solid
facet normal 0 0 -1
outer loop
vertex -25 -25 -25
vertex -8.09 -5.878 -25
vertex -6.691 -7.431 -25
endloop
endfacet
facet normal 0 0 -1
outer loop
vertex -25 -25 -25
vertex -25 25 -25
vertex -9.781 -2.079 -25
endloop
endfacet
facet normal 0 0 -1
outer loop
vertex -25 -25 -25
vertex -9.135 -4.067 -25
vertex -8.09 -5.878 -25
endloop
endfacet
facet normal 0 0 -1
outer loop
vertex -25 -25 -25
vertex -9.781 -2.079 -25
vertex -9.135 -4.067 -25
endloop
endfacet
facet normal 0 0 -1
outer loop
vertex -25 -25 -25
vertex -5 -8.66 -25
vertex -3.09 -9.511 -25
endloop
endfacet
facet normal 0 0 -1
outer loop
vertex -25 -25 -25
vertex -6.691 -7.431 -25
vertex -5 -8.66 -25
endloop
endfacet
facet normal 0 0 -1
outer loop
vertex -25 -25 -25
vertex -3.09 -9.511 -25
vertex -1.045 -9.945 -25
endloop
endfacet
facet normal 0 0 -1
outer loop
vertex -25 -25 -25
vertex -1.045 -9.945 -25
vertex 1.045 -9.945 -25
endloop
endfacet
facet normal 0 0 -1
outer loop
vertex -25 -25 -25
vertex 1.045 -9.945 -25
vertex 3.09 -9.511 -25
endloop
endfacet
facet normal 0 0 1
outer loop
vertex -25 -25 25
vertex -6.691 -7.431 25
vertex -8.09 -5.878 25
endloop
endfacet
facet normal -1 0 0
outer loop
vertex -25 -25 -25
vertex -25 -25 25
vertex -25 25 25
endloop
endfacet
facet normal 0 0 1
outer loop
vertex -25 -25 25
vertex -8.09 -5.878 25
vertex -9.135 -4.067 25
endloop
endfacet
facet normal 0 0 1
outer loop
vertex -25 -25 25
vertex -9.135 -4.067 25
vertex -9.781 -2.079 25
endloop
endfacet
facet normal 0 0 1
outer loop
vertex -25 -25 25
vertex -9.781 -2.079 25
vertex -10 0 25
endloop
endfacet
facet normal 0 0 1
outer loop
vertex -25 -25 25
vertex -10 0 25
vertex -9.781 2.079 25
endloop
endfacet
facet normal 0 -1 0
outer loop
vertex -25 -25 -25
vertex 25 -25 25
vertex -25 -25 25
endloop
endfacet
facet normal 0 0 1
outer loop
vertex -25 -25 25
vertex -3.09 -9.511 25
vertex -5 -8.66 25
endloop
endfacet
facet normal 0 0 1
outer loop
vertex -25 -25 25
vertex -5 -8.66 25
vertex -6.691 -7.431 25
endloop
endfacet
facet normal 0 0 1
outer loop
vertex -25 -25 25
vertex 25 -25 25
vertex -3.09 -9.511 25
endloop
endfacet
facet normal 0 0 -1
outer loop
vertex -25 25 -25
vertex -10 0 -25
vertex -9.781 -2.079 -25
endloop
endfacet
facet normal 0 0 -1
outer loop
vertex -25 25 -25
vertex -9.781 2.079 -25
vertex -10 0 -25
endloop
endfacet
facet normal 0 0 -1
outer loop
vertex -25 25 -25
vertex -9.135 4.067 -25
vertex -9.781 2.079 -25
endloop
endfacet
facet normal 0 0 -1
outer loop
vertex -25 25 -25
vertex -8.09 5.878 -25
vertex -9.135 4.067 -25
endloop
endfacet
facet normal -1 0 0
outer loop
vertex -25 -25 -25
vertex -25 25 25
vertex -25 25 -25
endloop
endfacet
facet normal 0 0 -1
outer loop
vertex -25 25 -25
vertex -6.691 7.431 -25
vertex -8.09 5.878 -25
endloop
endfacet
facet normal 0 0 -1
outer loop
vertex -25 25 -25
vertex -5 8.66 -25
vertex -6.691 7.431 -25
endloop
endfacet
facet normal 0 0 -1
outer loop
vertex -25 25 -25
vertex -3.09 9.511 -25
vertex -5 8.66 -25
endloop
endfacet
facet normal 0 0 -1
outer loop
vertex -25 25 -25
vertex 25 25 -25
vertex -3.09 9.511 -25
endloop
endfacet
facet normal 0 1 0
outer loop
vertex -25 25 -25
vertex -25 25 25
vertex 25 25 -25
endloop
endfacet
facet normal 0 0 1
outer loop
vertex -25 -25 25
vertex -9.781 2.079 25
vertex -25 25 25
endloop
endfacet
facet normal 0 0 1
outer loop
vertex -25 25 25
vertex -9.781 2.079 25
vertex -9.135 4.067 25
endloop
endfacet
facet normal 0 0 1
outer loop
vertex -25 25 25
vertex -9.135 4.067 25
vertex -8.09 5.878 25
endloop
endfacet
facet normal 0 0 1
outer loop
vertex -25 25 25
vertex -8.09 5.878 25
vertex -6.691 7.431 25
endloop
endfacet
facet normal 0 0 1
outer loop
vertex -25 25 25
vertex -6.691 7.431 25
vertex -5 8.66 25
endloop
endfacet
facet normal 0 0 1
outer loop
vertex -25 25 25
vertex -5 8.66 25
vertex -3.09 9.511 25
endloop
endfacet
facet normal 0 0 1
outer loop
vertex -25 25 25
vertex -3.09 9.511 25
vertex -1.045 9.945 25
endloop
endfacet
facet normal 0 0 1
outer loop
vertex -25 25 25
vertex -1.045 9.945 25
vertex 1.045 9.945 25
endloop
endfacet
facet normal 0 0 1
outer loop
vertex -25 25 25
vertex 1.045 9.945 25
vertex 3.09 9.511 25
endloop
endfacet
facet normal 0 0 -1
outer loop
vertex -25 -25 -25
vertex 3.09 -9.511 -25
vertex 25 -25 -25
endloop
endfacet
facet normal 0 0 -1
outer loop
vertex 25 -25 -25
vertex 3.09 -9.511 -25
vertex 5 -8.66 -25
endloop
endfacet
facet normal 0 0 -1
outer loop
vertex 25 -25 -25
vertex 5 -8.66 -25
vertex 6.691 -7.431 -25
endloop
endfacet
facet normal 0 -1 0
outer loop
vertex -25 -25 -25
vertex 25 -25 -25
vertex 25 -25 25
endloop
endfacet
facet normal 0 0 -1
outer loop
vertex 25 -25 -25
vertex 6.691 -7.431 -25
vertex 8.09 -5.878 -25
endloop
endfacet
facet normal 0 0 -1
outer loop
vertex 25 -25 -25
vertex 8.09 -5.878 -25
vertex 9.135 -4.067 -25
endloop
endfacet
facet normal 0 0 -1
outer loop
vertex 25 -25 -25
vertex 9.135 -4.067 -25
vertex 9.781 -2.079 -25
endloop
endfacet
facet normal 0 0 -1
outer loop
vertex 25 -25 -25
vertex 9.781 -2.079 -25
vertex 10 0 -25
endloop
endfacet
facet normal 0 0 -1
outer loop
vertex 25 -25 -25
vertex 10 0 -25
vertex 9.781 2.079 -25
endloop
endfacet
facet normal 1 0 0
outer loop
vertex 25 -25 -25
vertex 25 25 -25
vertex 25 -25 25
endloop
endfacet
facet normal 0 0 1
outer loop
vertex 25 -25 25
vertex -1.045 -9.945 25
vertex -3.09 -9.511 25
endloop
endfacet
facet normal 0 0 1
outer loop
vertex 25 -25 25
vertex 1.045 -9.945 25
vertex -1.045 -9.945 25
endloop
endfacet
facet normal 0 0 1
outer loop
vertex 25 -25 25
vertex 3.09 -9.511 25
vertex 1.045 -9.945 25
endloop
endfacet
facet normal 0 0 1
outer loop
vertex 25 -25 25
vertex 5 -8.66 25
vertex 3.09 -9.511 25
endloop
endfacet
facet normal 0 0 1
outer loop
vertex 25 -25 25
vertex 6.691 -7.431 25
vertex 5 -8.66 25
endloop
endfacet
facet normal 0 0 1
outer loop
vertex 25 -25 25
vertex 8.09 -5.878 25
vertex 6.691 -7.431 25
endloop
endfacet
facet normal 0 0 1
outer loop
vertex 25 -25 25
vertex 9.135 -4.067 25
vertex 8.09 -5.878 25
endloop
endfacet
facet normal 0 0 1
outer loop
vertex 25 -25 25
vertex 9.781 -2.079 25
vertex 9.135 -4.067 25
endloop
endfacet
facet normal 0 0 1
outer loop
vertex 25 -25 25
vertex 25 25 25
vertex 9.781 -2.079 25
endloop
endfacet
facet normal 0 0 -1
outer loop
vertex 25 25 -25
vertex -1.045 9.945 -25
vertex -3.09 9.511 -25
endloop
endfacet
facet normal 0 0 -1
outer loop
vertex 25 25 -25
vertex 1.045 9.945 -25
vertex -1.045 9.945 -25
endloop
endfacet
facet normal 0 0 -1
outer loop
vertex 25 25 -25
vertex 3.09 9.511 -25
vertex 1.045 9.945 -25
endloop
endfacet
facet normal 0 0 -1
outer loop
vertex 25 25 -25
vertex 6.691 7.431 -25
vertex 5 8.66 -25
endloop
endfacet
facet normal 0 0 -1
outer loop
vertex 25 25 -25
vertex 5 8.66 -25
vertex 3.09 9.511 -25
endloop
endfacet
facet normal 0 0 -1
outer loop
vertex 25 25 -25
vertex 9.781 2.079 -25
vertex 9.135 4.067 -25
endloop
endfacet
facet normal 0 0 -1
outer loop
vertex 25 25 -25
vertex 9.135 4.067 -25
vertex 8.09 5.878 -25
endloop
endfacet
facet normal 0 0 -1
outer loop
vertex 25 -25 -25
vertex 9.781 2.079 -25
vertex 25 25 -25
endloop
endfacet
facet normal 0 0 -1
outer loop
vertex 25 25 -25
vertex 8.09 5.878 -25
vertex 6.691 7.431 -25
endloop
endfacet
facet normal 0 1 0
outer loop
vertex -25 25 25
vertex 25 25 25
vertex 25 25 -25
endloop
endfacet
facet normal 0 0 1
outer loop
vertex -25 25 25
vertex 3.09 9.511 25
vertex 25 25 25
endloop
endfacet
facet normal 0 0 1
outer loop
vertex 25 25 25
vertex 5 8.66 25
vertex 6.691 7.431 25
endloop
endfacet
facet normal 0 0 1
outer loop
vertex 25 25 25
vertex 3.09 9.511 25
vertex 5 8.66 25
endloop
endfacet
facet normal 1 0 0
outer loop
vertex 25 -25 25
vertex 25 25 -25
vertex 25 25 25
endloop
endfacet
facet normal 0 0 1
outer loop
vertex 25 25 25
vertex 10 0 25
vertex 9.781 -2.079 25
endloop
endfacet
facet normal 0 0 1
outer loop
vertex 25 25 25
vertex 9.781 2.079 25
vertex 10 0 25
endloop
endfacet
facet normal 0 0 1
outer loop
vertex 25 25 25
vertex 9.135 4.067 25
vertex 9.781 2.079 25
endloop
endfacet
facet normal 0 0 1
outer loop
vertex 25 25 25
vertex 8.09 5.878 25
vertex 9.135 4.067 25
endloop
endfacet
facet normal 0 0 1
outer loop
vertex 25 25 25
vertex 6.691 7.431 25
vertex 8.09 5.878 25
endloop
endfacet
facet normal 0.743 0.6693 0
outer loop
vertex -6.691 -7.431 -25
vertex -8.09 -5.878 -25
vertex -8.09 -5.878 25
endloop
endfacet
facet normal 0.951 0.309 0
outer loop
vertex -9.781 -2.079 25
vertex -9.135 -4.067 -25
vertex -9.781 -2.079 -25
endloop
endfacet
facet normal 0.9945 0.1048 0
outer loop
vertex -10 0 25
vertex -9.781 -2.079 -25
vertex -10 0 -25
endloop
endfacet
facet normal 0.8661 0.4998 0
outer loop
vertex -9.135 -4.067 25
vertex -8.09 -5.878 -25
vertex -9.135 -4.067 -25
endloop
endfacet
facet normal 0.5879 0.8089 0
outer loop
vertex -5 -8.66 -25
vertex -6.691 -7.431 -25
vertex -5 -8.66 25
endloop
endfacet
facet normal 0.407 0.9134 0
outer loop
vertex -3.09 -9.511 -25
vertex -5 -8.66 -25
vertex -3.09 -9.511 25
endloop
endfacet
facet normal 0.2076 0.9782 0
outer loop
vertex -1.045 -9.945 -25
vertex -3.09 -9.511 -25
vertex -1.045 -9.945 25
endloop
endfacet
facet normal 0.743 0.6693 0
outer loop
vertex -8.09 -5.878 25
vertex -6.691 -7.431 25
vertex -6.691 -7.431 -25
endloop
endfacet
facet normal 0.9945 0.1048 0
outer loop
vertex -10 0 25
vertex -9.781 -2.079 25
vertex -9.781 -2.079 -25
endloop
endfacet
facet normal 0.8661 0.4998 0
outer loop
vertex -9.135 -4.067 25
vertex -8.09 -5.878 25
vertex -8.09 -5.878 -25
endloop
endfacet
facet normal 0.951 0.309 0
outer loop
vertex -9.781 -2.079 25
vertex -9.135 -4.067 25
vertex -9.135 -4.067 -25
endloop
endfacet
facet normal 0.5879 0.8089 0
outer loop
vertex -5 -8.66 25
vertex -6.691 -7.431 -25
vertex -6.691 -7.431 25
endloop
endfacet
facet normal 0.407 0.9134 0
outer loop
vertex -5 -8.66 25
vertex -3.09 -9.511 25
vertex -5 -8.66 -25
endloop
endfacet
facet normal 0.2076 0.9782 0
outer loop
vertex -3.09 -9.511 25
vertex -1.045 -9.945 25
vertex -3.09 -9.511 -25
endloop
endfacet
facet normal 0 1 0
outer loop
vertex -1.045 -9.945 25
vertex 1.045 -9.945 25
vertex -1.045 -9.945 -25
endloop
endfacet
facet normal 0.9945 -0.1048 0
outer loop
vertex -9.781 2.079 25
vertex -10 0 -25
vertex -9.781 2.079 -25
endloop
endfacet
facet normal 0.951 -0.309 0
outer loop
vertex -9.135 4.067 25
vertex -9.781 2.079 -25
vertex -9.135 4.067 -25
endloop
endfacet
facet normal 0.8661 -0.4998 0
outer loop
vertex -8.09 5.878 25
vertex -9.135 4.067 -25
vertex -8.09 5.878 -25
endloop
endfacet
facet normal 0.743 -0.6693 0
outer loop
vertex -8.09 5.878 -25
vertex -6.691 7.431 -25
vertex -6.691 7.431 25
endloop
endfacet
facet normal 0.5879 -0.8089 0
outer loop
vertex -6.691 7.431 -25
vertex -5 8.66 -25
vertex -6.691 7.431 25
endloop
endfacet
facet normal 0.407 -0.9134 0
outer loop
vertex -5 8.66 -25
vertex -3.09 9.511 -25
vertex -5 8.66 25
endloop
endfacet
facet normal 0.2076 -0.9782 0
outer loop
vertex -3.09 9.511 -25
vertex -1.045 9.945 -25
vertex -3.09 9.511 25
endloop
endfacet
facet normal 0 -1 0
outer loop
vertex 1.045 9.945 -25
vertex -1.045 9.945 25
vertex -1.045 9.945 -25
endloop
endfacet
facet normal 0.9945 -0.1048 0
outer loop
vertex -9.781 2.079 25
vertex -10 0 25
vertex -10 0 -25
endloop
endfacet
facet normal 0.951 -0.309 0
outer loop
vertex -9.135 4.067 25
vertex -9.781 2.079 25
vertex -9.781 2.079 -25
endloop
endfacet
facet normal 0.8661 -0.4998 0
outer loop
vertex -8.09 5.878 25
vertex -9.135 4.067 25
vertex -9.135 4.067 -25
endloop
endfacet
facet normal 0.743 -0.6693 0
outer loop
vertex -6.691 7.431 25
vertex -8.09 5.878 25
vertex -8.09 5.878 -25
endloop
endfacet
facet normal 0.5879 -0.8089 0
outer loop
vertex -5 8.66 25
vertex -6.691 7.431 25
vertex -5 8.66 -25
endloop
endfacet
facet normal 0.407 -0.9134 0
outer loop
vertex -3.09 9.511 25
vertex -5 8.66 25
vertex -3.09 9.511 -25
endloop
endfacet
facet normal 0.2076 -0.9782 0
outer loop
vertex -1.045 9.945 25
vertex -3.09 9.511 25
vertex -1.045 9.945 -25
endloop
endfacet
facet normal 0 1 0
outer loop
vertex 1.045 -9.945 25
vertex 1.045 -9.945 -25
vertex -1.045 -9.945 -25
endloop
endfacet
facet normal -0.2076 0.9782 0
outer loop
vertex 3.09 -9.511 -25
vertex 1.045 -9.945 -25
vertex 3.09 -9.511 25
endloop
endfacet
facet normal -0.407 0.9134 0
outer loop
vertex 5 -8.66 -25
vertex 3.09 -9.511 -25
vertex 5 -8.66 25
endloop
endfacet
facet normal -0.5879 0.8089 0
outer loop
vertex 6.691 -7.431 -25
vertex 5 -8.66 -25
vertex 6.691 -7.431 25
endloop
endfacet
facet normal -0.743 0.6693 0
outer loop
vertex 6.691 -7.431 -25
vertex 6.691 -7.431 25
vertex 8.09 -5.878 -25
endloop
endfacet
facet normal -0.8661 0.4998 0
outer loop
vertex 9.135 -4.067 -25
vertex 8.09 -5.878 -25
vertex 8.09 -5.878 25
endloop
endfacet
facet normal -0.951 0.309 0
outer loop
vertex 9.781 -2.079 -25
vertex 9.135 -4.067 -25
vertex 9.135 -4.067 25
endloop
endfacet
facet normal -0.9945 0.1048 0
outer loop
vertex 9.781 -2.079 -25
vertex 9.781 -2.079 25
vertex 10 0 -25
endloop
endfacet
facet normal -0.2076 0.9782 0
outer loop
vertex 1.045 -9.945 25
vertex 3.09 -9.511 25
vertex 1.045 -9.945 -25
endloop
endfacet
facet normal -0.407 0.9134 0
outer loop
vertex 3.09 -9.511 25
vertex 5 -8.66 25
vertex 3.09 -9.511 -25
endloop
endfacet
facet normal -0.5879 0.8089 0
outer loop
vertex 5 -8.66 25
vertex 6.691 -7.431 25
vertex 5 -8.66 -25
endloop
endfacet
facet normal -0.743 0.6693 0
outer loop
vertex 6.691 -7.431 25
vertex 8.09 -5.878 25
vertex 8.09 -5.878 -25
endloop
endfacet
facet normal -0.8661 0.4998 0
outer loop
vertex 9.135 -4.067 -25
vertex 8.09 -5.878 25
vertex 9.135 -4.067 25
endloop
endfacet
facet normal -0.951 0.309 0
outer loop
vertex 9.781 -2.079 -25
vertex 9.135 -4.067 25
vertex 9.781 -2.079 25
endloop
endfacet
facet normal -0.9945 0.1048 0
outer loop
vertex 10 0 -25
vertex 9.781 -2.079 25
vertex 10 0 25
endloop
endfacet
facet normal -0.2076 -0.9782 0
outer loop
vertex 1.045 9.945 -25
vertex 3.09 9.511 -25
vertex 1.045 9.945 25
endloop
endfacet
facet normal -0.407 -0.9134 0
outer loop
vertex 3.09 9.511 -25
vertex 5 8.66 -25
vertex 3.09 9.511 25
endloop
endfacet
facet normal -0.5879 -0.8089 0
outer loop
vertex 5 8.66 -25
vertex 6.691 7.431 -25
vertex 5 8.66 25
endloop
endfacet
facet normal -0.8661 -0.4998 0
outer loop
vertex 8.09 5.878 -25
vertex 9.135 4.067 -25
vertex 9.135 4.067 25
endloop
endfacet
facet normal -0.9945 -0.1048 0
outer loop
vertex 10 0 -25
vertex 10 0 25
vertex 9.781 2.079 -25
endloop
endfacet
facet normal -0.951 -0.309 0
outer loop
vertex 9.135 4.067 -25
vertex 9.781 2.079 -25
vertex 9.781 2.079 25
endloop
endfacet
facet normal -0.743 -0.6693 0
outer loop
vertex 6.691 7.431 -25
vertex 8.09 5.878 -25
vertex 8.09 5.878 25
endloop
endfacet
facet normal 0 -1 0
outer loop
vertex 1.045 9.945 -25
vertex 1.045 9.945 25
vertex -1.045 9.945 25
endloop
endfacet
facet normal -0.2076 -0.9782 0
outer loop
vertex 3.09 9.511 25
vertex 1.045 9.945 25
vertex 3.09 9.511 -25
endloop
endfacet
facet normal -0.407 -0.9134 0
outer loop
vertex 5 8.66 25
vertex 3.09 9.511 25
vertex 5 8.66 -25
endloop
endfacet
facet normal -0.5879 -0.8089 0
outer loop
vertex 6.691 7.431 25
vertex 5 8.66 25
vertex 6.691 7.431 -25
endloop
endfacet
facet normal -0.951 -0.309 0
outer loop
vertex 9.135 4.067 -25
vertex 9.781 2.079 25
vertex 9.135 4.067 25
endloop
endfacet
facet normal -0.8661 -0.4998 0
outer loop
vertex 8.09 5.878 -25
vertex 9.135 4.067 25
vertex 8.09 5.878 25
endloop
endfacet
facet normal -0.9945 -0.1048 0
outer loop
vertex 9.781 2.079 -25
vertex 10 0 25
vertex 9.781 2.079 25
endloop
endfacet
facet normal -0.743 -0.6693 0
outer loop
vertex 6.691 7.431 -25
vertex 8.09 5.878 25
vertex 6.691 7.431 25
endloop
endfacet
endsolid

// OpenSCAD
cube_size = 50;
hole_diameter = 20;

difference() {
    cube([cube_size, cube_size, cube_size], center = true);
    cylinder(h = cube_size + 2, d = hole_diameter, center = true);
}
